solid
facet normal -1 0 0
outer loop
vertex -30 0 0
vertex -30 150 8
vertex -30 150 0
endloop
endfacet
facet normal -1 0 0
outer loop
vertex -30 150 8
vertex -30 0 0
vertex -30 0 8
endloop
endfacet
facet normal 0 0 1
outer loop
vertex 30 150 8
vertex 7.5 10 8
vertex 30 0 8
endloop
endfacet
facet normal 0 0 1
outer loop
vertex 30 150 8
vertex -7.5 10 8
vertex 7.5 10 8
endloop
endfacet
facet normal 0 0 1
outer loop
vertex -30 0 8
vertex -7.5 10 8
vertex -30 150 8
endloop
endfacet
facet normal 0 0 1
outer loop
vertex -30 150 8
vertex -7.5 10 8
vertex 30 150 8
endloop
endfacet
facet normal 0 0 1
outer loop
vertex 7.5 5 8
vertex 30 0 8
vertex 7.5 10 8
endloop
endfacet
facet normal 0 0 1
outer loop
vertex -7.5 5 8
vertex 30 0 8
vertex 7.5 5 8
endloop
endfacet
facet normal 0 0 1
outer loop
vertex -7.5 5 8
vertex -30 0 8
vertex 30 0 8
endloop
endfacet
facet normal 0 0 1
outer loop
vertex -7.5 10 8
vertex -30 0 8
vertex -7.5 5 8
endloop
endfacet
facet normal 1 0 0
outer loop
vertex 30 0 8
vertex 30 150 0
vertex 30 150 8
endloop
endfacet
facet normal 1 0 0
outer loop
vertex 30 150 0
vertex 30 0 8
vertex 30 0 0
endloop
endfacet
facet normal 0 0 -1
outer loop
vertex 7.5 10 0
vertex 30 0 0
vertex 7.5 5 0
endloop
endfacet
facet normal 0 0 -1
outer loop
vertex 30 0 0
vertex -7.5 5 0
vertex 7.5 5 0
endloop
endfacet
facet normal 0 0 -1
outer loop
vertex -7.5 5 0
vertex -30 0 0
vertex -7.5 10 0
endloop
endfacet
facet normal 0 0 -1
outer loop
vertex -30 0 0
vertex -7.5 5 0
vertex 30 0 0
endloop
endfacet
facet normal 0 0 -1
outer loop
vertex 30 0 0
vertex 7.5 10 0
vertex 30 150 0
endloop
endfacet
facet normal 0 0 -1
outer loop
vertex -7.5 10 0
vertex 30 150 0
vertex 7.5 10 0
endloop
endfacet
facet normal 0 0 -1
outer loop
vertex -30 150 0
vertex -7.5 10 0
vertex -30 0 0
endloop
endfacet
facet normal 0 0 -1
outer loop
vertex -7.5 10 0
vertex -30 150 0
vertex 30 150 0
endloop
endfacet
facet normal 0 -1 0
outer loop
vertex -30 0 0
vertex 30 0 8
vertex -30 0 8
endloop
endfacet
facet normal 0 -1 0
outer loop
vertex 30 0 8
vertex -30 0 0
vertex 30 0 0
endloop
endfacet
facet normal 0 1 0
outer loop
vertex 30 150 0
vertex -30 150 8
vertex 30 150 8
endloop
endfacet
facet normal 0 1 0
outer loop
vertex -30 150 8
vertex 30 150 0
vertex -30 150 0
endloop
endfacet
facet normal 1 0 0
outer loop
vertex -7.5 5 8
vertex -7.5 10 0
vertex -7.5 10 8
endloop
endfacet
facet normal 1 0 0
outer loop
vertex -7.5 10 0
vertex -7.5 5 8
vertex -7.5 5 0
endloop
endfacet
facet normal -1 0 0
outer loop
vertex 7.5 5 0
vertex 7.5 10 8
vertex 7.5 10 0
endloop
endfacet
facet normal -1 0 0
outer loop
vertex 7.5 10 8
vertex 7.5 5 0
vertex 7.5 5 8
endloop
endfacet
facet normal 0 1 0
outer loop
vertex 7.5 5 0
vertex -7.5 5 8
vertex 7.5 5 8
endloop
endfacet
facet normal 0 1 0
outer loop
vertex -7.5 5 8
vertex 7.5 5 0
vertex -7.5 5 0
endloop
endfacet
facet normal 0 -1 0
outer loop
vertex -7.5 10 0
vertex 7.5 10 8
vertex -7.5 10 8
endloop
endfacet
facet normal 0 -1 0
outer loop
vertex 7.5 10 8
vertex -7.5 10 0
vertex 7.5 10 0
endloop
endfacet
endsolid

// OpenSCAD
w=60;
h = 8;
difference() {
  translate([-w/2, 0, 0]) cube([w, 150, h]);
  translate([-w/8, 5, -1]) cube([w/4, 5, h+2]);
}
  
